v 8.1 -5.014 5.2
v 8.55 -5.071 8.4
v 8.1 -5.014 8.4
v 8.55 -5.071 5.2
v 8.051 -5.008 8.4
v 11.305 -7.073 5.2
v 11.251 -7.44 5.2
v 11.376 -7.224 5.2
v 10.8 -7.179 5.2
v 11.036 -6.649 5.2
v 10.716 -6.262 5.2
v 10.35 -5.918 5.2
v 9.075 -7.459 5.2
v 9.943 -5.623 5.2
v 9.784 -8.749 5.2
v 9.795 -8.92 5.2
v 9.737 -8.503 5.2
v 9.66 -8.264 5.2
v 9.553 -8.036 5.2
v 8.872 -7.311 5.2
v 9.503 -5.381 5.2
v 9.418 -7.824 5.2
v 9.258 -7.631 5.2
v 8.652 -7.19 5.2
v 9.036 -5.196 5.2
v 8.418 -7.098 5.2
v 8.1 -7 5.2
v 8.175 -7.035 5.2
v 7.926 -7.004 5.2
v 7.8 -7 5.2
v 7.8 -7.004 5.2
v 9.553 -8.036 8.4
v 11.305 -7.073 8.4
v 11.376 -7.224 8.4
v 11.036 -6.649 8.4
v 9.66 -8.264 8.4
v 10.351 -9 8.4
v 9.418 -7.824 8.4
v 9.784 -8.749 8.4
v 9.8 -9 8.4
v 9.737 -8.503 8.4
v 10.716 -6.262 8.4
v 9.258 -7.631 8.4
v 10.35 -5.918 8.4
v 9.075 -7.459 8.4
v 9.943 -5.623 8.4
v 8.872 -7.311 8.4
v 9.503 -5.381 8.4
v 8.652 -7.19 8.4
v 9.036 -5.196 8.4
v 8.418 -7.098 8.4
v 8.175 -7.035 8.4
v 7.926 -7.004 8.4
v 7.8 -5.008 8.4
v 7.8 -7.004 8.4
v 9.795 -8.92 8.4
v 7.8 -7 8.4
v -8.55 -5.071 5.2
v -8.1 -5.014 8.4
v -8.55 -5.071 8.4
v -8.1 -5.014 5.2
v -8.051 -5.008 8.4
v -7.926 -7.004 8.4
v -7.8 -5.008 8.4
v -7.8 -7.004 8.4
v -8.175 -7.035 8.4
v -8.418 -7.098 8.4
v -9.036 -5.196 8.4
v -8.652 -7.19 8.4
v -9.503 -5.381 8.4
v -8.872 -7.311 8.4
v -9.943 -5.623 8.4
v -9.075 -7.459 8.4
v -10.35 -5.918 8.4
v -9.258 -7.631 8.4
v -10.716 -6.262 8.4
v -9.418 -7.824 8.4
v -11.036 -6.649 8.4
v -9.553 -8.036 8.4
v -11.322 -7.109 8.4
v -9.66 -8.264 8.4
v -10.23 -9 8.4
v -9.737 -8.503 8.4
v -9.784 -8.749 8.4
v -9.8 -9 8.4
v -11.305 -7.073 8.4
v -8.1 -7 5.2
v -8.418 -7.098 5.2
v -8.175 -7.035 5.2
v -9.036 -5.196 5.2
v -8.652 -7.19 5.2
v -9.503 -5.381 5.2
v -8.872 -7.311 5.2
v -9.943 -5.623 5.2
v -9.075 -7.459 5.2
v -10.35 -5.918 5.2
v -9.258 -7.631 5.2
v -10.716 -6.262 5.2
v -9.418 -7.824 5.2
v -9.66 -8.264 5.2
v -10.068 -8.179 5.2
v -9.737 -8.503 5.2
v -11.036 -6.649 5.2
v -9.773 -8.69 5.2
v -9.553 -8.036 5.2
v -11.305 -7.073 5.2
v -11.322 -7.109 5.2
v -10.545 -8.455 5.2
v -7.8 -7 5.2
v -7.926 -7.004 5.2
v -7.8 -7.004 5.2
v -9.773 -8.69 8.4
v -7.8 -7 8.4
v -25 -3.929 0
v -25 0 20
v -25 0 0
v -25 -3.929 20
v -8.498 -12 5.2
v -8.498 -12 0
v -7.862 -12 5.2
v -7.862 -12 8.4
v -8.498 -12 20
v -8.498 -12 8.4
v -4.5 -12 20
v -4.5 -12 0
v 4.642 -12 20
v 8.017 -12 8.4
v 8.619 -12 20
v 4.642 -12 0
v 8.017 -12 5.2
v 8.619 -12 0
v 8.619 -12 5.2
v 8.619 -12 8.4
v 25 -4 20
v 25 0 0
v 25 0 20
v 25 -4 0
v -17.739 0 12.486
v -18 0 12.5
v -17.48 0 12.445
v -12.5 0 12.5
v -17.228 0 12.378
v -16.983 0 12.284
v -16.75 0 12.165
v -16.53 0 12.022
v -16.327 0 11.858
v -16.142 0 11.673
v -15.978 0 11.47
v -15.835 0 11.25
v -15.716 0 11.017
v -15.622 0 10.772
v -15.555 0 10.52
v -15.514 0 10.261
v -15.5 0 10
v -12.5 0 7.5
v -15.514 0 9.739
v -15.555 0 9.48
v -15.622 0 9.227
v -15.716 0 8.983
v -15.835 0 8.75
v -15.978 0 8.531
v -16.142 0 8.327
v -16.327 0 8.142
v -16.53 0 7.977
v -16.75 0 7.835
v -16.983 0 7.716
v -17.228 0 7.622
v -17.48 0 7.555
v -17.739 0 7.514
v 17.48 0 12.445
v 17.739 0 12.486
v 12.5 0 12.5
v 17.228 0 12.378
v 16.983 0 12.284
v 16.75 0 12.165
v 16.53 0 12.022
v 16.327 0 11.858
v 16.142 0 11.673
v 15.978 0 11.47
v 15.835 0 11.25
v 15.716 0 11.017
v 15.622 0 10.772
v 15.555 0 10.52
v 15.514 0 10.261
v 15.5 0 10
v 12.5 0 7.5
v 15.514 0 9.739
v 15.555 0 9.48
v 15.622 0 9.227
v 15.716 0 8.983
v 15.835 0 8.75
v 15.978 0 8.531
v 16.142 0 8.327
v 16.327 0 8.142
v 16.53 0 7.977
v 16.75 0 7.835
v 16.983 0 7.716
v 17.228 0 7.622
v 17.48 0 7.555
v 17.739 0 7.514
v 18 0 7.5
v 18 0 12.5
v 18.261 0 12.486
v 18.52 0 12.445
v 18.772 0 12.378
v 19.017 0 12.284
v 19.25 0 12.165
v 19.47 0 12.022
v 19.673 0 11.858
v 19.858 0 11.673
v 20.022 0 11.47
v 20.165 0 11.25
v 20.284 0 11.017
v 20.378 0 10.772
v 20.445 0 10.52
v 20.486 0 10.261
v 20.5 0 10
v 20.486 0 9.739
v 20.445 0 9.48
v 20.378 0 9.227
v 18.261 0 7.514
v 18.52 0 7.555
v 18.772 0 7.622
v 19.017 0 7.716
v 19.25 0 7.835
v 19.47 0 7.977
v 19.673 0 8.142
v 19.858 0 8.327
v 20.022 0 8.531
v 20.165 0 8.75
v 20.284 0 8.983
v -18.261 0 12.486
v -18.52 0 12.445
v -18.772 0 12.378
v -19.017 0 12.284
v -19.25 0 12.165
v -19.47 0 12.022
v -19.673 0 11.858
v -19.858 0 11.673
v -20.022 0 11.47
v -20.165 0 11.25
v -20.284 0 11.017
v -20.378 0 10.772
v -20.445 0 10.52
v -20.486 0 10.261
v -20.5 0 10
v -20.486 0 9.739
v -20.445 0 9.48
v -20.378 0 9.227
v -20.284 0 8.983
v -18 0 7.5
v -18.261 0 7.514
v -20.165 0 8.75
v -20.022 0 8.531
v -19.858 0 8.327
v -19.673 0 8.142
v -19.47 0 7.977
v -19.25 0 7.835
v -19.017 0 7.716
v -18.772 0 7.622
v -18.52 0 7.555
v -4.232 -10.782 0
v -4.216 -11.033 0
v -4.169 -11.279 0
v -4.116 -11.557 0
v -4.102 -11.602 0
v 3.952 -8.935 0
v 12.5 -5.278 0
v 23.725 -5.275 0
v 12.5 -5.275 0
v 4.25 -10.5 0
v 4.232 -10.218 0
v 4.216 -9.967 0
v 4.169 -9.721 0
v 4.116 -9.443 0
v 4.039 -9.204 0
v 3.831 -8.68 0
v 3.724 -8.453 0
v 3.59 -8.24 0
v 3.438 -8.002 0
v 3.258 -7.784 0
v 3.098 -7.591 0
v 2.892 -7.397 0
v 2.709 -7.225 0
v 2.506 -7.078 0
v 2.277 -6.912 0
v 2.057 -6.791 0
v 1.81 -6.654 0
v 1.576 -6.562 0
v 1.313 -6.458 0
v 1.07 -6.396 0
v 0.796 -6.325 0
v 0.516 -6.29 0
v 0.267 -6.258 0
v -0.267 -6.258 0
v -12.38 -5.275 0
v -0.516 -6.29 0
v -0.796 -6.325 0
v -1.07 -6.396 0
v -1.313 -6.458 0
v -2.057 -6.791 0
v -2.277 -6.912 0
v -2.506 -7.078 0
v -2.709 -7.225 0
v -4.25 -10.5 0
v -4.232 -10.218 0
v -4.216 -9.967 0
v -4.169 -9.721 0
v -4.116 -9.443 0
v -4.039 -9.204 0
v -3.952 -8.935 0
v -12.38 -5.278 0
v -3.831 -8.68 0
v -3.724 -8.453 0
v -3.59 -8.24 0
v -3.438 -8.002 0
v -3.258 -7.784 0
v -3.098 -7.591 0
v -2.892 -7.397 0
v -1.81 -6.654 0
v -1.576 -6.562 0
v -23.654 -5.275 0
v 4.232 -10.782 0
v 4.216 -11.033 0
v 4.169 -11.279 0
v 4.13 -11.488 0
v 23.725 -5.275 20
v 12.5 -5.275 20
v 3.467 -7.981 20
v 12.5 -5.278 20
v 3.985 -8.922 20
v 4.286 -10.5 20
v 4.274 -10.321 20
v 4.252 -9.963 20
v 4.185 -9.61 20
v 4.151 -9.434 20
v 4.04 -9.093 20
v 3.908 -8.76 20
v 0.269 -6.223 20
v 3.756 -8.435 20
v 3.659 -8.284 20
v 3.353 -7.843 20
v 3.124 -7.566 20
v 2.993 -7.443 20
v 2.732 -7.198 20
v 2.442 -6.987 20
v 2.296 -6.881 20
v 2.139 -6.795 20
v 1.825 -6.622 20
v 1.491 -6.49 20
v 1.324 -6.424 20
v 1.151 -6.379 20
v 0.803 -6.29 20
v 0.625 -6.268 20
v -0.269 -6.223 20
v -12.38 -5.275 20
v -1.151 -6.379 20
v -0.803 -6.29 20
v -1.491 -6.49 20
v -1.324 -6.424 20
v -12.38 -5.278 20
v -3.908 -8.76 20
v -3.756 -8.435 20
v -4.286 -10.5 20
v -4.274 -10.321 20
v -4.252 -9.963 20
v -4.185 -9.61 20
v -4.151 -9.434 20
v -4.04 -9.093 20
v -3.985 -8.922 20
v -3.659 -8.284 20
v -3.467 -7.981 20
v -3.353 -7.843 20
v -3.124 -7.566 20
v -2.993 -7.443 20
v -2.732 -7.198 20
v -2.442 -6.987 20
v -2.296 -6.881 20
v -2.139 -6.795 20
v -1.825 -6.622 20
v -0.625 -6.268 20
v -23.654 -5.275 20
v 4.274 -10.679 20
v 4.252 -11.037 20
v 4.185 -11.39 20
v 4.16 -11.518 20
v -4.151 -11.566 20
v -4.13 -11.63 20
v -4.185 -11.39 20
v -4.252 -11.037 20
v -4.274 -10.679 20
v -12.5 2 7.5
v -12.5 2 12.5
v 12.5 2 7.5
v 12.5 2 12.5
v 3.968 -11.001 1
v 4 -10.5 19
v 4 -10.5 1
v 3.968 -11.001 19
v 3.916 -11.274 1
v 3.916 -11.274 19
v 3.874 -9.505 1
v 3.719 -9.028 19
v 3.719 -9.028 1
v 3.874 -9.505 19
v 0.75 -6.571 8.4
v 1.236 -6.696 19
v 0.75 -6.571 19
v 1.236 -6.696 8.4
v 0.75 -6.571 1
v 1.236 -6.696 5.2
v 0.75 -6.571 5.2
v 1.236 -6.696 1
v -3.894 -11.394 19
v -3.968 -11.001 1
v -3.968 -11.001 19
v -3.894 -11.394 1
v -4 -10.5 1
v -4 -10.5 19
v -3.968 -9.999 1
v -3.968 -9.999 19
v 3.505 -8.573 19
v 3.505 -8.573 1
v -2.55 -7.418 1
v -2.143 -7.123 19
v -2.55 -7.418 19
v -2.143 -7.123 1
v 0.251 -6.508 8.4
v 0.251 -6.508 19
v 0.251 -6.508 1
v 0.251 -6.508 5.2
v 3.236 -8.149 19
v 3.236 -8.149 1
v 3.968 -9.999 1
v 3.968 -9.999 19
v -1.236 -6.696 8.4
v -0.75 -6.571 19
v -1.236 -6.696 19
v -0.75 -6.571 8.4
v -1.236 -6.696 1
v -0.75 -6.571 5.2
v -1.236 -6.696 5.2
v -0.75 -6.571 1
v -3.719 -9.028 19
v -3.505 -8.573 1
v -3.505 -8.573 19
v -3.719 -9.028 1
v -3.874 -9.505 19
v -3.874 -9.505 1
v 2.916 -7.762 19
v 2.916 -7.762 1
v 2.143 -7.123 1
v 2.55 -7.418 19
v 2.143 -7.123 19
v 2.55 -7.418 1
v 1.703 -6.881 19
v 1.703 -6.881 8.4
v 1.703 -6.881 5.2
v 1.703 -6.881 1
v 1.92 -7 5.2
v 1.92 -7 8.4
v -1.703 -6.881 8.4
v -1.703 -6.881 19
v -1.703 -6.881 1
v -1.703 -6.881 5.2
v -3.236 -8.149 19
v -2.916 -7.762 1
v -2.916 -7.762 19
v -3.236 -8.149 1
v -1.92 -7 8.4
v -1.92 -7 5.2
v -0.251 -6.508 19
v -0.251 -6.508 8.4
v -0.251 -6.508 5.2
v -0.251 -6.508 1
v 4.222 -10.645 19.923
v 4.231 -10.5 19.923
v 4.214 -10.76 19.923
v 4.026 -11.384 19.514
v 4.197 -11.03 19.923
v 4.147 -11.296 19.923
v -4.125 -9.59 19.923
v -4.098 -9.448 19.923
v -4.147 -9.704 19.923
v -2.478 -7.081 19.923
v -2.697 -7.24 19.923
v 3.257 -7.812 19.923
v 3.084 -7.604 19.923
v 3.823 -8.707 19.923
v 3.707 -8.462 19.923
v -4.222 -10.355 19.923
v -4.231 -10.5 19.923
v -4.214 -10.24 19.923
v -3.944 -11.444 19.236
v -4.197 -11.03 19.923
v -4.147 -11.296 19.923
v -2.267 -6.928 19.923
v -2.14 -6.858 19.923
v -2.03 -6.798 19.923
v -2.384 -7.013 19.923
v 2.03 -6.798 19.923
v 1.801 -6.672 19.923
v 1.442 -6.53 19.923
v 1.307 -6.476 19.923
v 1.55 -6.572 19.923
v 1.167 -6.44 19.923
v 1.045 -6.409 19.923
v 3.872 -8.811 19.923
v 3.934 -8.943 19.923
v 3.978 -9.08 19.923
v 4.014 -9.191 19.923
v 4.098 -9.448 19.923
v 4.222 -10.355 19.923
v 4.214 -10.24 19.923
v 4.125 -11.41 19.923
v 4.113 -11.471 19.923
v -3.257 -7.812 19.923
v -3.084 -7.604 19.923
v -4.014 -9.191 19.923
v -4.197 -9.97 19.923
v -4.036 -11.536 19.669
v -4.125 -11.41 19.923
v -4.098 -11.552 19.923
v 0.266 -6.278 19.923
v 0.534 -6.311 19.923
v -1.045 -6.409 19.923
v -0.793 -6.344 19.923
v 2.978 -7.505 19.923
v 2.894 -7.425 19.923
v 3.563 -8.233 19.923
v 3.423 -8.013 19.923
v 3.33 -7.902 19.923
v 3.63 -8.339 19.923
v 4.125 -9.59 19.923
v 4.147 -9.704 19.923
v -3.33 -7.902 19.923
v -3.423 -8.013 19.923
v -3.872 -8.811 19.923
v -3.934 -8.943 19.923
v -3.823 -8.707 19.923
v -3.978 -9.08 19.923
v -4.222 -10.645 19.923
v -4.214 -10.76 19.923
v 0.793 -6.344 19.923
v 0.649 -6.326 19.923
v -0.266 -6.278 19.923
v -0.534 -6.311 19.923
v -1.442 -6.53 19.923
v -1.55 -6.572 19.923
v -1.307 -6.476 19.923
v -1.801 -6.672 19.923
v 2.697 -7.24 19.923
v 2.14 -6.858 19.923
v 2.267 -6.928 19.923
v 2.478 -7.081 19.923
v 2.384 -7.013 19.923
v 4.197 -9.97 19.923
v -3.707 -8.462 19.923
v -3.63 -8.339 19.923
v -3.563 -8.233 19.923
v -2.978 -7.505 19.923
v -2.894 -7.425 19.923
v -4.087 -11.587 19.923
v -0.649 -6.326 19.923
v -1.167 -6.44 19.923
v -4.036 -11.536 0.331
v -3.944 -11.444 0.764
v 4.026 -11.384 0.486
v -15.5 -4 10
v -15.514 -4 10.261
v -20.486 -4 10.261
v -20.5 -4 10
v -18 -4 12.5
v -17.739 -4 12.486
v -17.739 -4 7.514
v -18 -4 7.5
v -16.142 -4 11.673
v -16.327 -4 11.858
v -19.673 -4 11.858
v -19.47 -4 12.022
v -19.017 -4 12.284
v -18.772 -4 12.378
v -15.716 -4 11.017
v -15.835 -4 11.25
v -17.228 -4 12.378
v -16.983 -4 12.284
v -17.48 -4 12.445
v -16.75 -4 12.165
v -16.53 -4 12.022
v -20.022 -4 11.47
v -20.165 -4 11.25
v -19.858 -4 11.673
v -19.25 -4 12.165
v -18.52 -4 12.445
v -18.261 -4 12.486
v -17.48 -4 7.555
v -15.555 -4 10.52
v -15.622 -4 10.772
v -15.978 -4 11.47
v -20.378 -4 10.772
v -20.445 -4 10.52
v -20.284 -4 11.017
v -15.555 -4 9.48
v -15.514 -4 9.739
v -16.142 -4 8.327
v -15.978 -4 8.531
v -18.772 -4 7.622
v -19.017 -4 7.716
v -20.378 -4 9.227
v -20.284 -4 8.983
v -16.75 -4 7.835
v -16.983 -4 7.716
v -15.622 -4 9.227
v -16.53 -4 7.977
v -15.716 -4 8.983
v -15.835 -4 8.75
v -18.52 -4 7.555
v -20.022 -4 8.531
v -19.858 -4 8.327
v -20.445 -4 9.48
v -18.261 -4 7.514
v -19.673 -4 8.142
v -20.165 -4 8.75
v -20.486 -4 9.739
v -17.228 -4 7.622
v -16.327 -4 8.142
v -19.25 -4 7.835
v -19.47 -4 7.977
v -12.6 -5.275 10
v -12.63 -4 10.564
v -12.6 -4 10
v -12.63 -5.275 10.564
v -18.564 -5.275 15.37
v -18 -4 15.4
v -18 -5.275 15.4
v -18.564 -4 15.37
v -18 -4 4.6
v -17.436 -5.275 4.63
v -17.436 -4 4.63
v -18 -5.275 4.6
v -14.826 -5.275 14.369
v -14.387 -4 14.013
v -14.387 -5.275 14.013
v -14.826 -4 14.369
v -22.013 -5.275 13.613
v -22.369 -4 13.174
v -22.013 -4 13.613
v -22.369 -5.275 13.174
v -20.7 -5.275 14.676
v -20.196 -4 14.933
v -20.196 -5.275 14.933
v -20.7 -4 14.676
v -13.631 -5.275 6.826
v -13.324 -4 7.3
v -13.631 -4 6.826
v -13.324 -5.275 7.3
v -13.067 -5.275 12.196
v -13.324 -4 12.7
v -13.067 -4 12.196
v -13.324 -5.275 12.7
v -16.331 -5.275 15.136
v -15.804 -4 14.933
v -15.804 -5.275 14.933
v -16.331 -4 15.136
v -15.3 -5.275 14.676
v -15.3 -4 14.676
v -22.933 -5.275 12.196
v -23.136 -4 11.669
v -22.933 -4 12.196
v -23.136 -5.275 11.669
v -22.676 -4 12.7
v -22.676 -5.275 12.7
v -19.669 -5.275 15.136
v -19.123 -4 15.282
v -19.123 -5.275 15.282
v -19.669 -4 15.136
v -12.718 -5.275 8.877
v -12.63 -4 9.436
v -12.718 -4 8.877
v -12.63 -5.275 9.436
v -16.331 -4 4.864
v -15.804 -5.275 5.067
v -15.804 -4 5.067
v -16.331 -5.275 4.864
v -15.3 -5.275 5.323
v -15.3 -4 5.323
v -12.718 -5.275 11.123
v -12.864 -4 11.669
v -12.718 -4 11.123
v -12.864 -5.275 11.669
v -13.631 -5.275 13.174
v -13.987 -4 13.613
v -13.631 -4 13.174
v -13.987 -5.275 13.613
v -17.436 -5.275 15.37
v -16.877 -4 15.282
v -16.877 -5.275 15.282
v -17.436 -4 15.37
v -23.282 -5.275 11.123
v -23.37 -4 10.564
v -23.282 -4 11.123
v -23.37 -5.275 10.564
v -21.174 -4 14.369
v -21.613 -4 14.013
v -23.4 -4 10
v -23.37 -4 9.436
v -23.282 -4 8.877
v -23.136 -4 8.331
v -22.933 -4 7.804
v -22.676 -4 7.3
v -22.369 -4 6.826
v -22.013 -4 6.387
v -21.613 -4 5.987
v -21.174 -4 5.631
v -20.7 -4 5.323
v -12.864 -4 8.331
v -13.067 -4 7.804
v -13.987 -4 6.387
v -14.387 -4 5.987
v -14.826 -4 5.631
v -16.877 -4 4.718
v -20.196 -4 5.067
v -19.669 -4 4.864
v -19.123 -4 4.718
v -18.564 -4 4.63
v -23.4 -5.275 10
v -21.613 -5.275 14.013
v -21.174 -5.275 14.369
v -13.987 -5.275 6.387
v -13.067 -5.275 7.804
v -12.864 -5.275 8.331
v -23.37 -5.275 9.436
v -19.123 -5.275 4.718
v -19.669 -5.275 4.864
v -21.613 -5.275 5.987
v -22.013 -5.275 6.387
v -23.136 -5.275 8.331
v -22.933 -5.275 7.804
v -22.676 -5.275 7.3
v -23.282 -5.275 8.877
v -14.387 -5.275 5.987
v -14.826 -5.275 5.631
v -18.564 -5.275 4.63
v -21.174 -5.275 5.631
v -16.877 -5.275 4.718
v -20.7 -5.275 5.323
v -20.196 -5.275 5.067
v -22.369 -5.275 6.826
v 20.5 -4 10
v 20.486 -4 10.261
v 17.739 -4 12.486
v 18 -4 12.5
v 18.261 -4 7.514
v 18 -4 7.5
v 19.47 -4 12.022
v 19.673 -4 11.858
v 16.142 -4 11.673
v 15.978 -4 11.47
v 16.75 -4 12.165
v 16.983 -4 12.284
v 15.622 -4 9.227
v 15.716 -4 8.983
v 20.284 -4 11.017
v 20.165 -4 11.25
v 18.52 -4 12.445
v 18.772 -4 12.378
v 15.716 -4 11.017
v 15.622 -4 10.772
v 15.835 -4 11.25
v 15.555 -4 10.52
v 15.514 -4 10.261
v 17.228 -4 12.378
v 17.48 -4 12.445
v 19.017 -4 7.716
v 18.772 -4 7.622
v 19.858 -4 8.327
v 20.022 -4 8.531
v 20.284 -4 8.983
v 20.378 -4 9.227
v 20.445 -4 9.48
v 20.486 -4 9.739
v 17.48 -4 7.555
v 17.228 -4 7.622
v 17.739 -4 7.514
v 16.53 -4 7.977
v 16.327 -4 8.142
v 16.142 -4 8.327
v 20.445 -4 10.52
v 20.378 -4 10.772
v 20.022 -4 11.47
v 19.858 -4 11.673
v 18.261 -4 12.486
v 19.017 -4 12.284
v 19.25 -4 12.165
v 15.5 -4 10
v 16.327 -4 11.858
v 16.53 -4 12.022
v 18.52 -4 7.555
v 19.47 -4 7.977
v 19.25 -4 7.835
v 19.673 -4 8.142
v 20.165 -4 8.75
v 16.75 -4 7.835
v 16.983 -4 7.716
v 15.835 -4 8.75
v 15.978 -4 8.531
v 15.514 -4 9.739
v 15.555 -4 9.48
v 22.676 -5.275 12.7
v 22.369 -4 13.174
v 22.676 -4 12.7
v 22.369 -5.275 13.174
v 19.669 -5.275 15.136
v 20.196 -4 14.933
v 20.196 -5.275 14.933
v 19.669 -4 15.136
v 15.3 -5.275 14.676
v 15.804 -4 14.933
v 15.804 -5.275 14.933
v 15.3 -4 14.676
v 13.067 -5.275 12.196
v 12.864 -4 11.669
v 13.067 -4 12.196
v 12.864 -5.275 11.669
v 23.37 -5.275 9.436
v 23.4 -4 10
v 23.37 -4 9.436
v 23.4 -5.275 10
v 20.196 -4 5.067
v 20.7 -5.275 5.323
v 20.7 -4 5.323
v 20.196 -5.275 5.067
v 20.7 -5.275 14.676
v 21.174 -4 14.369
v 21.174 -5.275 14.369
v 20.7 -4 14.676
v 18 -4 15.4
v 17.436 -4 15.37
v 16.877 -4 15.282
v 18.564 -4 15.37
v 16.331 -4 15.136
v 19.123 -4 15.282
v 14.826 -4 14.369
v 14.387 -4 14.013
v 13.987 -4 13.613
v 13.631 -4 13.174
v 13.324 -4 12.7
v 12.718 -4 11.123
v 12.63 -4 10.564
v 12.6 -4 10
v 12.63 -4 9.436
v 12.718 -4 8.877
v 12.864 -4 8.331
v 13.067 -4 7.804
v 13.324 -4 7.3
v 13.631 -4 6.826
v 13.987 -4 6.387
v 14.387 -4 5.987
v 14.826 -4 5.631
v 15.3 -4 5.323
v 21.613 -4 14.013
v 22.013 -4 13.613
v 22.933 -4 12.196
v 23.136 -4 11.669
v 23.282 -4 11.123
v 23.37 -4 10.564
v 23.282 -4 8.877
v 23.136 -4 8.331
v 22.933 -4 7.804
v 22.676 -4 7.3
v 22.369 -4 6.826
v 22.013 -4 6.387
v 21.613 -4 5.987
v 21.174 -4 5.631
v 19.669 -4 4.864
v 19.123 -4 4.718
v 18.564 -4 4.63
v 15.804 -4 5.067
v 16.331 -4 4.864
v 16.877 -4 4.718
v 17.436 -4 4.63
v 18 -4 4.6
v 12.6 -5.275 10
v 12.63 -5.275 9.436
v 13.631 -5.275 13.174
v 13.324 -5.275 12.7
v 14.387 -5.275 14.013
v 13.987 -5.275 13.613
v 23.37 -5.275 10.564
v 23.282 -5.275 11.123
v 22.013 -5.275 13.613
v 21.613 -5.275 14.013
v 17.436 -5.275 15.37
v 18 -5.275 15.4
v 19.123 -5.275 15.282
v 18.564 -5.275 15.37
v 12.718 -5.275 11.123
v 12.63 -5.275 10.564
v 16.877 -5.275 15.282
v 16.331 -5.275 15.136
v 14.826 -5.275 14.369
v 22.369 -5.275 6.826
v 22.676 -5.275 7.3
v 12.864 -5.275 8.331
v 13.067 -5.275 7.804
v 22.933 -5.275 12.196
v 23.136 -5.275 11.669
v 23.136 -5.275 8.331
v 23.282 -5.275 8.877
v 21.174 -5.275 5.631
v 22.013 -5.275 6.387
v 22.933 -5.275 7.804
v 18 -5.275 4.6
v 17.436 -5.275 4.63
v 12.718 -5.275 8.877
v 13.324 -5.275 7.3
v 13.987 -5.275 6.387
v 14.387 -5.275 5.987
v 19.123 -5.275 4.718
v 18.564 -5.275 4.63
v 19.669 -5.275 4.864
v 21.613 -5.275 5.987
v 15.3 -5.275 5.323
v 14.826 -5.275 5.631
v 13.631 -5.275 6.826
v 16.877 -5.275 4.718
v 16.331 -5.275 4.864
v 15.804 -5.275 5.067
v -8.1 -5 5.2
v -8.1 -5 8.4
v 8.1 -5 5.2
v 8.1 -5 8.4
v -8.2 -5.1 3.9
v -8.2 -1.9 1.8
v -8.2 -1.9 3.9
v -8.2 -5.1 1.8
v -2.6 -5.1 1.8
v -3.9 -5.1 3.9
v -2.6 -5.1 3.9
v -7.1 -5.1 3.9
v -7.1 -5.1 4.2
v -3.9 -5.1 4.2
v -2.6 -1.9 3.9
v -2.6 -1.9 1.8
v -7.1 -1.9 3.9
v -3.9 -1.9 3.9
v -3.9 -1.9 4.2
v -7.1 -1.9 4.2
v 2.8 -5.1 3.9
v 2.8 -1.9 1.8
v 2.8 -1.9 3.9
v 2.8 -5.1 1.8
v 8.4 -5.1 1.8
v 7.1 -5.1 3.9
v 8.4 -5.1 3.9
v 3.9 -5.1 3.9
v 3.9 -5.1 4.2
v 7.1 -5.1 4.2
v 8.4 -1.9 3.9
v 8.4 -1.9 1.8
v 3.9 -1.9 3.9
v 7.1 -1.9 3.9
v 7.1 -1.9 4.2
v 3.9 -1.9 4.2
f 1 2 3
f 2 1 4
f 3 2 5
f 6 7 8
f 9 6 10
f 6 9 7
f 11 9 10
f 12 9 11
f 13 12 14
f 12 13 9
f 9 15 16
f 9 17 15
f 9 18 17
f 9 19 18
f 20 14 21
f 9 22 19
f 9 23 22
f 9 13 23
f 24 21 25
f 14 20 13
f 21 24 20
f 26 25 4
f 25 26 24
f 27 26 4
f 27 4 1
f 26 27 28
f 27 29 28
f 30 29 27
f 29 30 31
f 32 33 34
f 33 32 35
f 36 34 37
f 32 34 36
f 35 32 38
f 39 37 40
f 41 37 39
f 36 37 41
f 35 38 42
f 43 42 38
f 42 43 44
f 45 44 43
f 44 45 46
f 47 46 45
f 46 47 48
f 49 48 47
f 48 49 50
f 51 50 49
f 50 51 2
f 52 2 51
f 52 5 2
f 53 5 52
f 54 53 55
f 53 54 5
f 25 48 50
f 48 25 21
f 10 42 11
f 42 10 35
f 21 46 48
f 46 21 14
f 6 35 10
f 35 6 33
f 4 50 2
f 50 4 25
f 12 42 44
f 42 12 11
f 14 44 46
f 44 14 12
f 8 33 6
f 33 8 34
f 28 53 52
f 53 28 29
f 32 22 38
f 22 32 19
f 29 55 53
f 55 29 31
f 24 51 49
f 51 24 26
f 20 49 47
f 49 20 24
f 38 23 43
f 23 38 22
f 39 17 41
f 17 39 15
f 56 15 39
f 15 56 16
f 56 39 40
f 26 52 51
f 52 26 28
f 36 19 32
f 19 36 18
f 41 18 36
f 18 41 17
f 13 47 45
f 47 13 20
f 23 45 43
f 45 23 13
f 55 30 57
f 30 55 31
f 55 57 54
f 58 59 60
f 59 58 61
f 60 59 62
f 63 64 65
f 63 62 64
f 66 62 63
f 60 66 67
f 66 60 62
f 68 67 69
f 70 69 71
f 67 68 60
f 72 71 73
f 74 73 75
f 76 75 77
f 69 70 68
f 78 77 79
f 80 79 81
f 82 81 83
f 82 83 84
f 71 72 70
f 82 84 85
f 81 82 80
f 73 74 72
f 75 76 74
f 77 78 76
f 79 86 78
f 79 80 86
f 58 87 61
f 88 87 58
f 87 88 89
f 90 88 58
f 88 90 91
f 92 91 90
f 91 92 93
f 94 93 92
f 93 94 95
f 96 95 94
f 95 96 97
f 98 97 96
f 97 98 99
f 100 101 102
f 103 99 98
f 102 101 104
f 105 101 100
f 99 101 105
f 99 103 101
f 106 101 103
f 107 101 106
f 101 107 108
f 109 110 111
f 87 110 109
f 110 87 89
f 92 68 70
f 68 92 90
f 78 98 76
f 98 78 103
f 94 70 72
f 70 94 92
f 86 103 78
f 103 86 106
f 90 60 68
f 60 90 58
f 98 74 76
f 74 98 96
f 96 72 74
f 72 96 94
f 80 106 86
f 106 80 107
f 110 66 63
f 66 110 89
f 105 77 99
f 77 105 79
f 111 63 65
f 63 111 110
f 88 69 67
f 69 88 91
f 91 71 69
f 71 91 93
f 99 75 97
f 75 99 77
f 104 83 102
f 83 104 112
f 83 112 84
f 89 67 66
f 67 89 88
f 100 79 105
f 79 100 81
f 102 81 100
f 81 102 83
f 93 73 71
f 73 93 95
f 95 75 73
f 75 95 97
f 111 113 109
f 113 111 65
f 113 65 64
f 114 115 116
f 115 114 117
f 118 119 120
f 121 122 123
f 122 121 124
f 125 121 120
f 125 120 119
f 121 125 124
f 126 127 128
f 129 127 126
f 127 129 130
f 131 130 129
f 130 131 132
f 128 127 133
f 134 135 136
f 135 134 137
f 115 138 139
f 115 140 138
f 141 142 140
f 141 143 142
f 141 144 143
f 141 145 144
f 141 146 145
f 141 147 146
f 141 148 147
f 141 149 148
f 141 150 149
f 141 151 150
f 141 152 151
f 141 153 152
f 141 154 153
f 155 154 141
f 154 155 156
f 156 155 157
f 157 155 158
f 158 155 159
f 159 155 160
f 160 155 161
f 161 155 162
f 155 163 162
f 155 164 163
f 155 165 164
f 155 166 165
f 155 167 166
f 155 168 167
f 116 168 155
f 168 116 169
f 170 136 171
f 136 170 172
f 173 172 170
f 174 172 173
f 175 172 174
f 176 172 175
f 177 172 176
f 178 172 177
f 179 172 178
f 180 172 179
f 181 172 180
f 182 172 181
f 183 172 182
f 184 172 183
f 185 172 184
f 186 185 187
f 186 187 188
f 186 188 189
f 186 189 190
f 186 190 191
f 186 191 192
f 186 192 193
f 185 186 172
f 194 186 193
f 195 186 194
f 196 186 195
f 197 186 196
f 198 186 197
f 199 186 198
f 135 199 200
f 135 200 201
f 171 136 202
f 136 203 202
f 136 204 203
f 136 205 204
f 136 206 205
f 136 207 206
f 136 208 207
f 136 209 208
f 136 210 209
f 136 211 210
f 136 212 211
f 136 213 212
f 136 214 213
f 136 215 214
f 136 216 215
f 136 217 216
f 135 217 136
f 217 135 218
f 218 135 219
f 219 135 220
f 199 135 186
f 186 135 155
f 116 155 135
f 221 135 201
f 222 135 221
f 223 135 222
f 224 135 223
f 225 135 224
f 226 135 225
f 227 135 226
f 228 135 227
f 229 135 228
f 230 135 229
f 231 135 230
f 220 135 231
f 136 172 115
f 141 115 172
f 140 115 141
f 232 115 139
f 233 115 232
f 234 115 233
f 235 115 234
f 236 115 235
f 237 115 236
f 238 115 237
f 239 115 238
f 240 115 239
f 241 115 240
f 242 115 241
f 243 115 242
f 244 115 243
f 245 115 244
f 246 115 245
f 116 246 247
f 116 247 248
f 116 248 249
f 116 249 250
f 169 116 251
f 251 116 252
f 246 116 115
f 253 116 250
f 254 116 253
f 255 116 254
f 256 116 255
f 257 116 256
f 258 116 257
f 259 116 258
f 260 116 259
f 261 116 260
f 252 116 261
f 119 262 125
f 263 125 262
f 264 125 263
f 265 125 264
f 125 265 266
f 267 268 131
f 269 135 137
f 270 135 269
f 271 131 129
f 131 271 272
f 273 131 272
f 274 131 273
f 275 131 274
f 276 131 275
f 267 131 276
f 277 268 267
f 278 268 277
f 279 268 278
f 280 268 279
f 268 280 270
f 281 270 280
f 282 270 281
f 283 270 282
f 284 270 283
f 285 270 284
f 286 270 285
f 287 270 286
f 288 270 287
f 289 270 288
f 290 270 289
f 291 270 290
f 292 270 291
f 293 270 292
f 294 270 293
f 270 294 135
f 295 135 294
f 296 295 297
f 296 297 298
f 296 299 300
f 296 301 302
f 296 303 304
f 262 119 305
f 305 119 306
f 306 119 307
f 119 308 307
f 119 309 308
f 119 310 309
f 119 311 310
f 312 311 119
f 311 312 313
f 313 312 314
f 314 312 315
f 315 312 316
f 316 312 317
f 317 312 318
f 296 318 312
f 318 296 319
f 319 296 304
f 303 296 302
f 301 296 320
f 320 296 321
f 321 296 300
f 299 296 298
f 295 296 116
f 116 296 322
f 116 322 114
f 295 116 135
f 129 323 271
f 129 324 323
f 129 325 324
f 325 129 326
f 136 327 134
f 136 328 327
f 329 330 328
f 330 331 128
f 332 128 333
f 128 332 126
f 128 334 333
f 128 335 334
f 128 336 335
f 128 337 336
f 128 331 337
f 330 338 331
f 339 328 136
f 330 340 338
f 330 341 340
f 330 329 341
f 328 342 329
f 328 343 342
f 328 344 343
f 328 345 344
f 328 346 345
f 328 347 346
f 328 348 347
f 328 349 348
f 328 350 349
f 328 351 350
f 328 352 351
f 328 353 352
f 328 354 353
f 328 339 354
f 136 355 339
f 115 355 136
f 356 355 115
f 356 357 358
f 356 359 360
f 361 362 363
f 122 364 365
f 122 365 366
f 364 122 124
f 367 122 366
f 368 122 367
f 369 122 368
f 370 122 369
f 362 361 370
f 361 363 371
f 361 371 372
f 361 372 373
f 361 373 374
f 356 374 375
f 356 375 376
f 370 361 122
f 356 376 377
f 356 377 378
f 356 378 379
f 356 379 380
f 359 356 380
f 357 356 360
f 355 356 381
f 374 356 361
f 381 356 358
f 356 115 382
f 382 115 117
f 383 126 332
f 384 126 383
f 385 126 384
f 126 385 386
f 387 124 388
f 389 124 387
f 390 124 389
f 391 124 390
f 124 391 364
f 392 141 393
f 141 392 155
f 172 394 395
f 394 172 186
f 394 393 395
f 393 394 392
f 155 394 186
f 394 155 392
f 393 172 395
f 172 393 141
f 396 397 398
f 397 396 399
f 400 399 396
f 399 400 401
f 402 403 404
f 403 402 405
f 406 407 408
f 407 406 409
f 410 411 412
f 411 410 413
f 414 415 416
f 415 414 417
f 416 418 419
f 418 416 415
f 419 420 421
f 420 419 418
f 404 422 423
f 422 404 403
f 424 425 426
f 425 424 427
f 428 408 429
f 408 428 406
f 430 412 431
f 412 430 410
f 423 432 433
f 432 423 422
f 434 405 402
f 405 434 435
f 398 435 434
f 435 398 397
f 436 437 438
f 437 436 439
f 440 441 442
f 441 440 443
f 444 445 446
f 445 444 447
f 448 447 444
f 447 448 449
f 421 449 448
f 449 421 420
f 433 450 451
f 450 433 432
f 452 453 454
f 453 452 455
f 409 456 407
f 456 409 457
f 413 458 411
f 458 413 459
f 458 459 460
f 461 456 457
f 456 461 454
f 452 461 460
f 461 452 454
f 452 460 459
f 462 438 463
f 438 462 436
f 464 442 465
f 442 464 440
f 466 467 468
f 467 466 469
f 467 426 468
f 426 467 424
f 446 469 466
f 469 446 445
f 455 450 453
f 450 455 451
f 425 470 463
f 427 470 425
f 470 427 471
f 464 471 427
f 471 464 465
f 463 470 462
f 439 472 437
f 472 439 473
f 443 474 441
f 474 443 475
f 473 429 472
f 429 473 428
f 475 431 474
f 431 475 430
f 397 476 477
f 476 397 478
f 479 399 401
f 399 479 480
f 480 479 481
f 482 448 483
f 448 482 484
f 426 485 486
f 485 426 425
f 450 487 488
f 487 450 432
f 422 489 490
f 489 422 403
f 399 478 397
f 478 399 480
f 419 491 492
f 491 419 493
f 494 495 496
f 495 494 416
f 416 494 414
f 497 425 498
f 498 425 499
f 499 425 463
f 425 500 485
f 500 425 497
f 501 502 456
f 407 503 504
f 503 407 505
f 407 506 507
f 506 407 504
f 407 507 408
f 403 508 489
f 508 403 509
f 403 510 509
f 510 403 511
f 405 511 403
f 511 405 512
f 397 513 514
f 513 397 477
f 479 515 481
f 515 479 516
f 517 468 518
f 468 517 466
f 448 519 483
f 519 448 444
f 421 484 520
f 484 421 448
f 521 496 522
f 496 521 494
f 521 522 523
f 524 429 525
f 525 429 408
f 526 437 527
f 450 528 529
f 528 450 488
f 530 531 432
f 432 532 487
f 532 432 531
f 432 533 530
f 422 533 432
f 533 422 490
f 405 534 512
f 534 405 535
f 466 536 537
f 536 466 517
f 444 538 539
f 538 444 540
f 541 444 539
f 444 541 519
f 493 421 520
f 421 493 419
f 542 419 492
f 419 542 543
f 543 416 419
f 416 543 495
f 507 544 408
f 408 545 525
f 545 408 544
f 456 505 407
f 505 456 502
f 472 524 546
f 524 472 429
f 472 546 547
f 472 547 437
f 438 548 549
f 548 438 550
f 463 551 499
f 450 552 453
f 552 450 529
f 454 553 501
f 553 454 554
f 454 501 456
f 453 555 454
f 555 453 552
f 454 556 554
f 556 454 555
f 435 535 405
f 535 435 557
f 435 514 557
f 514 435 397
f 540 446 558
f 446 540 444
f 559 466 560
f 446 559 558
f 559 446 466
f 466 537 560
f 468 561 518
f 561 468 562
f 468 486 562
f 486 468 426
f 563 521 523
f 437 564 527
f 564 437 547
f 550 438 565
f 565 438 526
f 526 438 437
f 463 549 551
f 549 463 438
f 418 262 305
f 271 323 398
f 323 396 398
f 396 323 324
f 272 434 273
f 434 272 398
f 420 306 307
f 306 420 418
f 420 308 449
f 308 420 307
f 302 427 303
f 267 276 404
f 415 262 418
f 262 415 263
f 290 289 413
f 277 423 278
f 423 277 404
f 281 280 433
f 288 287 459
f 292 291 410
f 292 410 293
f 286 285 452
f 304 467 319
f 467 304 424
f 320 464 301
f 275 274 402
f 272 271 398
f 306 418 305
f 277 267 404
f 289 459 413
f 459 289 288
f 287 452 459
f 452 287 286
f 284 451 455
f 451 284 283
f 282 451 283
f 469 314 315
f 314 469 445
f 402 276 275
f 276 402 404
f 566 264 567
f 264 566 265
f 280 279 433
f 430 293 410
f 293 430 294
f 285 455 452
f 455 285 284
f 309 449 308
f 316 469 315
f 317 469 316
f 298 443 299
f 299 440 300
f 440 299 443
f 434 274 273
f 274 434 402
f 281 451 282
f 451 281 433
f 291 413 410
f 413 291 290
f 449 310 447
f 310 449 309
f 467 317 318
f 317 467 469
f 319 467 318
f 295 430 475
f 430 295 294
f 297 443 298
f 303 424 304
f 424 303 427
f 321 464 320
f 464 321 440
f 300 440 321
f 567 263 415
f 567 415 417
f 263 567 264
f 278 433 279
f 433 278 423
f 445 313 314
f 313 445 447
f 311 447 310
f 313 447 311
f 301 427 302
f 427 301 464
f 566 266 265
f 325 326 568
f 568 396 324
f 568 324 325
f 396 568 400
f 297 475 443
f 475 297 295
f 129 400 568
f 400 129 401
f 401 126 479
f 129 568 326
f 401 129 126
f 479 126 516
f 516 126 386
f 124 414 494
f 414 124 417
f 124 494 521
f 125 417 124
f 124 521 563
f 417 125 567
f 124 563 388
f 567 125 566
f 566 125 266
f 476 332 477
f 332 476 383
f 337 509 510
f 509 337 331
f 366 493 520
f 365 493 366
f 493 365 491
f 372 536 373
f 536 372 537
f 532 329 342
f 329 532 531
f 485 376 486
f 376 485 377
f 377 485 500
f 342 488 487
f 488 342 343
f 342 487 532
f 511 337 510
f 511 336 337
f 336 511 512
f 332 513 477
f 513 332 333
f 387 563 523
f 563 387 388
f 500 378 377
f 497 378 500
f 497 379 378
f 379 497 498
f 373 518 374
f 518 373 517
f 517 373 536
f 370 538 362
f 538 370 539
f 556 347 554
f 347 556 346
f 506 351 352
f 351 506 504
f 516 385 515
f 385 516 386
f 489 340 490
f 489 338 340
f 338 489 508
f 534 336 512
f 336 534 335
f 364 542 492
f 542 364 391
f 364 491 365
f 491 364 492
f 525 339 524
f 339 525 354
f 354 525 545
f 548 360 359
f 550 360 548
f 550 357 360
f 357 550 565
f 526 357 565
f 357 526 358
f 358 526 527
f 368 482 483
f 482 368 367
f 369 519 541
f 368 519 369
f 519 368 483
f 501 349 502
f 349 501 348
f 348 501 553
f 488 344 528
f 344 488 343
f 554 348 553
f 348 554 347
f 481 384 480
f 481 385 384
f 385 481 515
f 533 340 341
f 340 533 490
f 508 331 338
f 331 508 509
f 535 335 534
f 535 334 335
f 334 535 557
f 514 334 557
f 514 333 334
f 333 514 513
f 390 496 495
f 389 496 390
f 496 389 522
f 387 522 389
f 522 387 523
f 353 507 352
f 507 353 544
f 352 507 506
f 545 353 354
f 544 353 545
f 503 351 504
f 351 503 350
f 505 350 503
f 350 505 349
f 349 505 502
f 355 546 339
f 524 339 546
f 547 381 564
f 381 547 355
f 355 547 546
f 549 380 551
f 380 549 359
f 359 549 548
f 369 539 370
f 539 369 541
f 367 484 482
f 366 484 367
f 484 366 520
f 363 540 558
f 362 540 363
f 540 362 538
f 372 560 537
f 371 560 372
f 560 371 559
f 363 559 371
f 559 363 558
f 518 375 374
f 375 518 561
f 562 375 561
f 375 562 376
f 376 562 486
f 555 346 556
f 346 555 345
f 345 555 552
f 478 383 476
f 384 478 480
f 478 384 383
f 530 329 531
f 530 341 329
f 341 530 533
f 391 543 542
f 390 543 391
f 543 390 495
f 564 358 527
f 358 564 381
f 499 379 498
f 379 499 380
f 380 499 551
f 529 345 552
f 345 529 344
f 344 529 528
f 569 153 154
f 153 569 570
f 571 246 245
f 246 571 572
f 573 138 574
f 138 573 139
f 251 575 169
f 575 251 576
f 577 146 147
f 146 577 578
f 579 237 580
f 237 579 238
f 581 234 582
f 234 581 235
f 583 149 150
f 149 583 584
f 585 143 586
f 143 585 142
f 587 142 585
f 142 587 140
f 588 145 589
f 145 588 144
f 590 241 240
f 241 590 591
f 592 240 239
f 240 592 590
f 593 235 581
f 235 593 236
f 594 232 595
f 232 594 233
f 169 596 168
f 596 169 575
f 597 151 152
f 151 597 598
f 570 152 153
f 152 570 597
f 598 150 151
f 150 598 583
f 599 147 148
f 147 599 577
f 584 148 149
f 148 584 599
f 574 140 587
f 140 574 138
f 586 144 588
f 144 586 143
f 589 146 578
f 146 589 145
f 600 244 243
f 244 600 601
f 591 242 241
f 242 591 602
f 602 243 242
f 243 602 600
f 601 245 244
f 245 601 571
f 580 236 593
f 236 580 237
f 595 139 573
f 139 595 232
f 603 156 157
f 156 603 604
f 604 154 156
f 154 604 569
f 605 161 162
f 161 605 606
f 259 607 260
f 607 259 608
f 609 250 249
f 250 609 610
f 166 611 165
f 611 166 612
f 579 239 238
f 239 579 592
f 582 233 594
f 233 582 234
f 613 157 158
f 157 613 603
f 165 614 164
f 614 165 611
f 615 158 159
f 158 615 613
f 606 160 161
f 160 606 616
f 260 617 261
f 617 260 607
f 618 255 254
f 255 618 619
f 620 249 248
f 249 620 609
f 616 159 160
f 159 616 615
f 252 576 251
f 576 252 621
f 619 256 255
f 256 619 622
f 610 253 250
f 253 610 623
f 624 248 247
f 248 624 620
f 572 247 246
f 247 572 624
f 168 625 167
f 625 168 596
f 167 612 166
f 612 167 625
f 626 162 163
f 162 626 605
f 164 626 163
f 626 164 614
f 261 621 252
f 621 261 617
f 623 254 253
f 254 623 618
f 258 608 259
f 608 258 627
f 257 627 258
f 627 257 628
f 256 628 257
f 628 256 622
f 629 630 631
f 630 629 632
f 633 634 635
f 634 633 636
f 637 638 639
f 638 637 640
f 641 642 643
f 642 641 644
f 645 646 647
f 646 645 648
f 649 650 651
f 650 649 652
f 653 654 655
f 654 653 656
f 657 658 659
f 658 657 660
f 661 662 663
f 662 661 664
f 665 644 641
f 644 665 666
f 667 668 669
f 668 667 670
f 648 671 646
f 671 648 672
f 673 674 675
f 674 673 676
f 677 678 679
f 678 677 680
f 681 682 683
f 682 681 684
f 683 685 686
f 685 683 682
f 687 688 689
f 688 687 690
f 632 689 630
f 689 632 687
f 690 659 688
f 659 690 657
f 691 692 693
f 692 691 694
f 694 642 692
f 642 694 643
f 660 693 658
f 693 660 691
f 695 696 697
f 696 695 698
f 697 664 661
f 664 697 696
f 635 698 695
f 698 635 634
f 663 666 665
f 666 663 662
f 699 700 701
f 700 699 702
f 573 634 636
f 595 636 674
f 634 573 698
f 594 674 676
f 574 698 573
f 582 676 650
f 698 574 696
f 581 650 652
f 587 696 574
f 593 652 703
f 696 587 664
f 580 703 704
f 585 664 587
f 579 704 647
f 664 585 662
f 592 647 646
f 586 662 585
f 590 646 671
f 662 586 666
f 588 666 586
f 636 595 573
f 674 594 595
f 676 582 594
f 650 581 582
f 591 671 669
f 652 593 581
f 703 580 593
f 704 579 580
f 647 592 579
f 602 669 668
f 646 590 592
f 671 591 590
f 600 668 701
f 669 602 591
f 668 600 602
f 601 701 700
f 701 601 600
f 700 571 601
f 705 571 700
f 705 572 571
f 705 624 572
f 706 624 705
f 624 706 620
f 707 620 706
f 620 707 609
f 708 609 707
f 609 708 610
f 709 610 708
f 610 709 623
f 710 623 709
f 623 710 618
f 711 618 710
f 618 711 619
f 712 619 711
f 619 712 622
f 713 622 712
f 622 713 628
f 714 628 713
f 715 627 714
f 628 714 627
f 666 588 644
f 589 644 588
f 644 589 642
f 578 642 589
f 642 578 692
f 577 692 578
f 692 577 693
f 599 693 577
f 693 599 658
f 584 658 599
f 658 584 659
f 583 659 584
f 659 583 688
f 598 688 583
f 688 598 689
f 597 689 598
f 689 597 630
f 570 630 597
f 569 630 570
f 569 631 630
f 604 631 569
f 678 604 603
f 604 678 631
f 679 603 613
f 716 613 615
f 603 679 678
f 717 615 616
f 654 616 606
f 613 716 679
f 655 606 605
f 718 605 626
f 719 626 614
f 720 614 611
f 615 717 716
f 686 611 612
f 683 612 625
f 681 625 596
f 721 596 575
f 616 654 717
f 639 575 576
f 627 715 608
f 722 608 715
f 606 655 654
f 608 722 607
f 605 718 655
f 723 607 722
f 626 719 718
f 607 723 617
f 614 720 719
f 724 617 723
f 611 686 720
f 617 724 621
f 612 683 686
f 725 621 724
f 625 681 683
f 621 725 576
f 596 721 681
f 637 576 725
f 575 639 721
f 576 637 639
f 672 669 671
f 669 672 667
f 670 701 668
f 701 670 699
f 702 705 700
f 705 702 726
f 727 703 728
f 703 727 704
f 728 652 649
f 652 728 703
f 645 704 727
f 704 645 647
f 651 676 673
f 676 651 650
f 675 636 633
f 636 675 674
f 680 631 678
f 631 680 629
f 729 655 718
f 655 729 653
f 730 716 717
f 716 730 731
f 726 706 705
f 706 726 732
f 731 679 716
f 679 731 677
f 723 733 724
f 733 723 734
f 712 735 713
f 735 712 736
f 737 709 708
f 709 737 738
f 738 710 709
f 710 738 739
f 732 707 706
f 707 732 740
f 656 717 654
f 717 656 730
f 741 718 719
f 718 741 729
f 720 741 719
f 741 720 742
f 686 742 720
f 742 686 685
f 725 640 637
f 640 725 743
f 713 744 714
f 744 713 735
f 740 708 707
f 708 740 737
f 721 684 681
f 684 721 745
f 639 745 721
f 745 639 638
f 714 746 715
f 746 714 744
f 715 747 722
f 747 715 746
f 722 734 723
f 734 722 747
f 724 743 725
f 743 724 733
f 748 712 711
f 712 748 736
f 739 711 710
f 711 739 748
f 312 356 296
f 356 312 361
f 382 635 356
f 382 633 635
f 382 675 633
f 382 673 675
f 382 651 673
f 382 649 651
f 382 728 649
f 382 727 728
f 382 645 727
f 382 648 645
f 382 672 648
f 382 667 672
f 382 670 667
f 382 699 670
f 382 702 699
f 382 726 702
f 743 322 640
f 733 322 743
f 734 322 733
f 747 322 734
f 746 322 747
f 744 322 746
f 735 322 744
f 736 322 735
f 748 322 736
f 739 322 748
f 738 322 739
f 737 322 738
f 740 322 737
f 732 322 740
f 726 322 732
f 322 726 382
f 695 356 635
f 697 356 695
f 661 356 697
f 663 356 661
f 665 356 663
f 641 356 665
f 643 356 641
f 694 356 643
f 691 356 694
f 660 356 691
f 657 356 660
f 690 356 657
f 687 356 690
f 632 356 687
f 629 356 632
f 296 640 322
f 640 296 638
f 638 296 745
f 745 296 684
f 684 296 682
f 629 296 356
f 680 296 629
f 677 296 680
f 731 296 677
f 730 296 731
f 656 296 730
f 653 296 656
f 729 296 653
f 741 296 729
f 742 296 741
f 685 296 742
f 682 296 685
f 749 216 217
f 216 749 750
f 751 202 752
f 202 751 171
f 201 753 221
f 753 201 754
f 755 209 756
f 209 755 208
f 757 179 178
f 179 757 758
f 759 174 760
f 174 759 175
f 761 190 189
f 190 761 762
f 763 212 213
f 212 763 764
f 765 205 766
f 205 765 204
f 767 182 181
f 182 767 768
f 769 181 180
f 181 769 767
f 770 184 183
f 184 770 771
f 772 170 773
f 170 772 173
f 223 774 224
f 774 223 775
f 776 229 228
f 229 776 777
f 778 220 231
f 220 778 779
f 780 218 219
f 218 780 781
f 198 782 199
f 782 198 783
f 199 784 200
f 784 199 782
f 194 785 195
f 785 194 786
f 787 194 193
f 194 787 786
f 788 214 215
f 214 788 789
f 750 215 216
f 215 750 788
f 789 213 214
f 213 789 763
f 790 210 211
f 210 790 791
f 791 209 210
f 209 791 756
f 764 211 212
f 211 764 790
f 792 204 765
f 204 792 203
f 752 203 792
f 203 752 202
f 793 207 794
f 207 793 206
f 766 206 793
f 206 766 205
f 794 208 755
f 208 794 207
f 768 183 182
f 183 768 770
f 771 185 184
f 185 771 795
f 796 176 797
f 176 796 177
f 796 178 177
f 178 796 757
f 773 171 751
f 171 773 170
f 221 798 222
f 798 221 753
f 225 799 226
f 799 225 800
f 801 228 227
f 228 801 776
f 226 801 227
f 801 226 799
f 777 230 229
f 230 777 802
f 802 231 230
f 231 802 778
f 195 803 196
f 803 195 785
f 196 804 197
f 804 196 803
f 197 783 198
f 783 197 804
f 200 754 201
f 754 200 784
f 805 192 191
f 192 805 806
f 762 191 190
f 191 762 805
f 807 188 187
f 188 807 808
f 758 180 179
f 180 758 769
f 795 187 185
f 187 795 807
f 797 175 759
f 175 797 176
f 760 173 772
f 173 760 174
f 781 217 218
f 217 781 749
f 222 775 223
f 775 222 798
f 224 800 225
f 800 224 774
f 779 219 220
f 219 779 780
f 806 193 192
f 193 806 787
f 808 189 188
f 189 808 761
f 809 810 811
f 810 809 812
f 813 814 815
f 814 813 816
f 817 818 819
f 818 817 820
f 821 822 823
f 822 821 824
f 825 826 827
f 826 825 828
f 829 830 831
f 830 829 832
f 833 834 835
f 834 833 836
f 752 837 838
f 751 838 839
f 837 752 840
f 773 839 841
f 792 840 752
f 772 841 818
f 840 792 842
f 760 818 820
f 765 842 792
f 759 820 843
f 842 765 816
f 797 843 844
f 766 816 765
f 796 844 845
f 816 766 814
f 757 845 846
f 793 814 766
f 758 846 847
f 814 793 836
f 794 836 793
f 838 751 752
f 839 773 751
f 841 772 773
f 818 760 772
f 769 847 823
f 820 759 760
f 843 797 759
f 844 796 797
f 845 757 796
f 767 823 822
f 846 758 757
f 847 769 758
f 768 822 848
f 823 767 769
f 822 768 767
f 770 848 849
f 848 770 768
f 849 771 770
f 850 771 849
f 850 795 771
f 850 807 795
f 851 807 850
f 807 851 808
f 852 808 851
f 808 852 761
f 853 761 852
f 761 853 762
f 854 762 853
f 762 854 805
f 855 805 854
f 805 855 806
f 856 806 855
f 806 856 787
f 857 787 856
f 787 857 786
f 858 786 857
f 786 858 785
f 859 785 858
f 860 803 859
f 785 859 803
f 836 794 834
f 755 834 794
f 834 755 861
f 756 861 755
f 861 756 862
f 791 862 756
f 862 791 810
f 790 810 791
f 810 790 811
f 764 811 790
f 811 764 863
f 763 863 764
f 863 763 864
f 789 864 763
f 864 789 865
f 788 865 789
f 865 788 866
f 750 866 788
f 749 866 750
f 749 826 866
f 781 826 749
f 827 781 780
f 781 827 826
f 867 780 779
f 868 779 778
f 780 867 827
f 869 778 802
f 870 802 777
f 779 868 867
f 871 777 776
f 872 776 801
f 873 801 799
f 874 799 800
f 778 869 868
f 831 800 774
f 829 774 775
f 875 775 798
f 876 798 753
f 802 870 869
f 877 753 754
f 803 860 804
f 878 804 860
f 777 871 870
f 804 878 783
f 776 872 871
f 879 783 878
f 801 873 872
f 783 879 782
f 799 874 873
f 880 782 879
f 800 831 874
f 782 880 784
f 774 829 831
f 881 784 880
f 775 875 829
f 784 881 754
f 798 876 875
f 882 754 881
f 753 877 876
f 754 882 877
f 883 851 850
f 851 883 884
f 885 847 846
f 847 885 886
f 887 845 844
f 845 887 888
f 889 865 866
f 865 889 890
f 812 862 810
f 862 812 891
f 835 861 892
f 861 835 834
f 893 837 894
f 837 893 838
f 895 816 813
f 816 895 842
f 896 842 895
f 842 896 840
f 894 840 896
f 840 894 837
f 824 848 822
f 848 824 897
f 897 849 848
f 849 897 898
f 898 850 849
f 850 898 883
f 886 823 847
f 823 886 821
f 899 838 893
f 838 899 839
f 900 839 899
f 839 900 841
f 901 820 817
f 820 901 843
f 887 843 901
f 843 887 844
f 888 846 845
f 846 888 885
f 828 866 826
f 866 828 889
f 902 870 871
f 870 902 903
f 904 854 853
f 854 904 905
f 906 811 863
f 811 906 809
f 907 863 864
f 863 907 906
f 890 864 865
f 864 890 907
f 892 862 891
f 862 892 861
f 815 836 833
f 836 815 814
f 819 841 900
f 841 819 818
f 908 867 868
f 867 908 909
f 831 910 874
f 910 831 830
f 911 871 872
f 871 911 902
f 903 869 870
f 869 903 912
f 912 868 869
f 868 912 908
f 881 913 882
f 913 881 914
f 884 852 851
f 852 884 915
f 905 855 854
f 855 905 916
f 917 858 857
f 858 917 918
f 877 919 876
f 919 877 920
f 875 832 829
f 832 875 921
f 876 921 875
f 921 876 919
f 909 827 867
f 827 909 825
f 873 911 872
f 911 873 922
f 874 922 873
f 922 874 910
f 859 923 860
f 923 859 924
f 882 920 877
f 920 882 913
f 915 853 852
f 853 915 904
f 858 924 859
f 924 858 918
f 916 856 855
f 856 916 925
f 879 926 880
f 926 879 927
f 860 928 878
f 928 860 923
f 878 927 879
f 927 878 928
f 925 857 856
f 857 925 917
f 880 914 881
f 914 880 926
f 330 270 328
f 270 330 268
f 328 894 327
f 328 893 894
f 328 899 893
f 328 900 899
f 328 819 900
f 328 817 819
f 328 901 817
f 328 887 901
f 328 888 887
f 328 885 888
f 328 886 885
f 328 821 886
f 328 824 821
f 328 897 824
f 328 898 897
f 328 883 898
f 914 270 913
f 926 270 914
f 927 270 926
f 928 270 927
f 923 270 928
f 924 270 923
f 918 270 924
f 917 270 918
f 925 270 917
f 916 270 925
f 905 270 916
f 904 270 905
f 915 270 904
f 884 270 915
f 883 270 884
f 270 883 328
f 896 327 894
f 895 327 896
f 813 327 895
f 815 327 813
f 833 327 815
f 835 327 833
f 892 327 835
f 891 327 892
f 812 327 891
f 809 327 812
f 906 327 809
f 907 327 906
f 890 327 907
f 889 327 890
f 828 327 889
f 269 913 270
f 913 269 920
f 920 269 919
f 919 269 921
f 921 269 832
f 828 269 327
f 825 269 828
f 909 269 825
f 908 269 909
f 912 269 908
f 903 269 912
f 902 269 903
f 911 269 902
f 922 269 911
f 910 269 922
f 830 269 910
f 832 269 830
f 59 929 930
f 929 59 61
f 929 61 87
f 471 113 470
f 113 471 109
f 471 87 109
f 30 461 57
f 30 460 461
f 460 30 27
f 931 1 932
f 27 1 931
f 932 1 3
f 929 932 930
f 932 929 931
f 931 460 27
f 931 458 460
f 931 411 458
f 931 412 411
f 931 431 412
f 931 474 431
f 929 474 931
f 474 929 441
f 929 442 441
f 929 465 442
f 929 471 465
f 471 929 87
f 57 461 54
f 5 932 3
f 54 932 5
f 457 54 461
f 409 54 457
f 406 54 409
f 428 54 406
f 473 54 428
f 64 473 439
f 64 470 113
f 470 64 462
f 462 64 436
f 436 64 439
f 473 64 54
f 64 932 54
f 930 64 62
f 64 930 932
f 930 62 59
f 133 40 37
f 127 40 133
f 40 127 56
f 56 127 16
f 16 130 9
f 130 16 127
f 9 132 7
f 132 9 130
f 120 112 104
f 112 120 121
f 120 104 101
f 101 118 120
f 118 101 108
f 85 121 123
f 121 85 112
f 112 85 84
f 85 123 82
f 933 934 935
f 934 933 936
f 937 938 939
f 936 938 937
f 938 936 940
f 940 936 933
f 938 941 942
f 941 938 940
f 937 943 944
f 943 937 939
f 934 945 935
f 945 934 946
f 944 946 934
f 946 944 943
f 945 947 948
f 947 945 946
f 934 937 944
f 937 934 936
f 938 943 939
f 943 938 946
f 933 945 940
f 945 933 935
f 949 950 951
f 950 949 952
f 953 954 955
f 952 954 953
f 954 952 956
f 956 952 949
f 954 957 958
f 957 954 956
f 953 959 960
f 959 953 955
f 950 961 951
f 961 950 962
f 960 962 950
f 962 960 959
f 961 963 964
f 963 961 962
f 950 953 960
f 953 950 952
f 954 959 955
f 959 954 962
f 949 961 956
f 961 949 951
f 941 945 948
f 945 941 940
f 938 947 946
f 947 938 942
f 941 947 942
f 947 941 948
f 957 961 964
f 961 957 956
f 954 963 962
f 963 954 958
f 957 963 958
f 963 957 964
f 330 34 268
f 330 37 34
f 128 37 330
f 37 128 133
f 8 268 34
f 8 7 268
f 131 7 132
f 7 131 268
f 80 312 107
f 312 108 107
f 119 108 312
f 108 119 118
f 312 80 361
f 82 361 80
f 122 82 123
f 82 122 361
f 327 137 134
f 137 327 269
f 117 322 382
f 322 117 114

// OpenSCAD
// PRUSA iteration4
// Y holder front
// GNU GPL v3
// Josef Průša <iam@josefprusa.cz> and contributors
// http://www.reprap.org/wiki/Prusa_Mendel
// http://prusamendel.org

module ziptie_round_edge()
{
    difference()
    {
        translate([0,0,0]) rotate([90,0,0]) cylinder( h=3.2, r=4, $fn=50 );  
        translate([0,1,0]) rotate([90,0,0]) cylinder( h=5, r=2, $fn=50 );  
        translate([-10,-4,0]) cube([20,5,5]);
        translate([-20,-4,-13]) cube([20,5,20]);
    }
}


module part()    
{

    difference()
    {
        union()
        {
            // body block
            translate([-25,0,0]) cube([50,20,12]); 
            translate([-12.5,7.5,-2]) cube([25,5,2]);
        }

        // y-axis cut
        translate([0,21,10.5]) rotate([90,0,0]) cylinder( h=21, r=4, $fn=50 );        
        translate([0,21,10.5]) rotate([90,0,0]) cylinder( h=2, r1=4.5, r2=4, $fn=50 );
        translate([0,1,10.5]) rotate([90,0,0]) cylinder( h=2, r1=4, r2=4.5, $fn=50 );
        translate([-7,-1,14.5]) rotate([0,45,0]) cube([10,22,10]);
        translate([0,21,10.5]) rotate([90,0,0]) cylinder( h=1.4, r1=5, r2=4, $fn=50 );

        // screw holes
          translate([-18,10,-6]) cylinder( h=21, r=2.5, $fn=60 );
        translate([-18,10,4]) cylinder( h=21, r=5.4, $fn=60 );
          translate([-25.38,-1,5.275]) cube([13,22,10]);
          translate([18,10,-6]) cylinder( h=20, r=2.5, $fn=60 );
        translate([18,10,4]) cylinder( h=21, r=5.4, $fn=60 );
          translate([12.5,-1,5.275]) cube([13,22,10]);

        // ziptie
        translate([7.8,8.4,9]) ziptie_round_edge();
        translate([-7.8,5.2,9]) rotate([0,0,180]) ziptie_round_edge();
        translate([-8.1,5.2,5]) cube([16.2,3.2,2]);
        translate([0.8,5.2,24.5]) rotate([0,60,0]) cube([20,3.2,2]);
        translate([-1.8,5.2,26.5]) rotate([0,120,0]) cube([20,3.2,2]);
        
        // nut print supports
        translate([-8.2,1.8,3.5-3.2/2]) cube([5.6,2.1,3.2]);
        translate([2.8,1.8,3.5-3.2/2]) cube([5.6,2.1,3.2]);
        translate([-7.1,2.1,3.5-3.2/2]) cube([3.2,2.1,3.2]);
        translate([3.9,2.1,3.5-3.2/2]) cube([3.2,2.1,3.2]);

        // upper corners
        translate([4,-1,20]) rotate([0,60,0]) cube([17,30,20]);
        translate([-21.2,-1,30]) rotate([0,120,0]) cube([17,30,20]);
        
        //custom churuata3d
        translate([22,-1,7]) rotate([0,45,0]) cube([5,22,5]);
        translate([-29,-1,7]) rotate([0,45,0]) cube([5,22,5]);
    }
}


rotate([90,0,0])part();
